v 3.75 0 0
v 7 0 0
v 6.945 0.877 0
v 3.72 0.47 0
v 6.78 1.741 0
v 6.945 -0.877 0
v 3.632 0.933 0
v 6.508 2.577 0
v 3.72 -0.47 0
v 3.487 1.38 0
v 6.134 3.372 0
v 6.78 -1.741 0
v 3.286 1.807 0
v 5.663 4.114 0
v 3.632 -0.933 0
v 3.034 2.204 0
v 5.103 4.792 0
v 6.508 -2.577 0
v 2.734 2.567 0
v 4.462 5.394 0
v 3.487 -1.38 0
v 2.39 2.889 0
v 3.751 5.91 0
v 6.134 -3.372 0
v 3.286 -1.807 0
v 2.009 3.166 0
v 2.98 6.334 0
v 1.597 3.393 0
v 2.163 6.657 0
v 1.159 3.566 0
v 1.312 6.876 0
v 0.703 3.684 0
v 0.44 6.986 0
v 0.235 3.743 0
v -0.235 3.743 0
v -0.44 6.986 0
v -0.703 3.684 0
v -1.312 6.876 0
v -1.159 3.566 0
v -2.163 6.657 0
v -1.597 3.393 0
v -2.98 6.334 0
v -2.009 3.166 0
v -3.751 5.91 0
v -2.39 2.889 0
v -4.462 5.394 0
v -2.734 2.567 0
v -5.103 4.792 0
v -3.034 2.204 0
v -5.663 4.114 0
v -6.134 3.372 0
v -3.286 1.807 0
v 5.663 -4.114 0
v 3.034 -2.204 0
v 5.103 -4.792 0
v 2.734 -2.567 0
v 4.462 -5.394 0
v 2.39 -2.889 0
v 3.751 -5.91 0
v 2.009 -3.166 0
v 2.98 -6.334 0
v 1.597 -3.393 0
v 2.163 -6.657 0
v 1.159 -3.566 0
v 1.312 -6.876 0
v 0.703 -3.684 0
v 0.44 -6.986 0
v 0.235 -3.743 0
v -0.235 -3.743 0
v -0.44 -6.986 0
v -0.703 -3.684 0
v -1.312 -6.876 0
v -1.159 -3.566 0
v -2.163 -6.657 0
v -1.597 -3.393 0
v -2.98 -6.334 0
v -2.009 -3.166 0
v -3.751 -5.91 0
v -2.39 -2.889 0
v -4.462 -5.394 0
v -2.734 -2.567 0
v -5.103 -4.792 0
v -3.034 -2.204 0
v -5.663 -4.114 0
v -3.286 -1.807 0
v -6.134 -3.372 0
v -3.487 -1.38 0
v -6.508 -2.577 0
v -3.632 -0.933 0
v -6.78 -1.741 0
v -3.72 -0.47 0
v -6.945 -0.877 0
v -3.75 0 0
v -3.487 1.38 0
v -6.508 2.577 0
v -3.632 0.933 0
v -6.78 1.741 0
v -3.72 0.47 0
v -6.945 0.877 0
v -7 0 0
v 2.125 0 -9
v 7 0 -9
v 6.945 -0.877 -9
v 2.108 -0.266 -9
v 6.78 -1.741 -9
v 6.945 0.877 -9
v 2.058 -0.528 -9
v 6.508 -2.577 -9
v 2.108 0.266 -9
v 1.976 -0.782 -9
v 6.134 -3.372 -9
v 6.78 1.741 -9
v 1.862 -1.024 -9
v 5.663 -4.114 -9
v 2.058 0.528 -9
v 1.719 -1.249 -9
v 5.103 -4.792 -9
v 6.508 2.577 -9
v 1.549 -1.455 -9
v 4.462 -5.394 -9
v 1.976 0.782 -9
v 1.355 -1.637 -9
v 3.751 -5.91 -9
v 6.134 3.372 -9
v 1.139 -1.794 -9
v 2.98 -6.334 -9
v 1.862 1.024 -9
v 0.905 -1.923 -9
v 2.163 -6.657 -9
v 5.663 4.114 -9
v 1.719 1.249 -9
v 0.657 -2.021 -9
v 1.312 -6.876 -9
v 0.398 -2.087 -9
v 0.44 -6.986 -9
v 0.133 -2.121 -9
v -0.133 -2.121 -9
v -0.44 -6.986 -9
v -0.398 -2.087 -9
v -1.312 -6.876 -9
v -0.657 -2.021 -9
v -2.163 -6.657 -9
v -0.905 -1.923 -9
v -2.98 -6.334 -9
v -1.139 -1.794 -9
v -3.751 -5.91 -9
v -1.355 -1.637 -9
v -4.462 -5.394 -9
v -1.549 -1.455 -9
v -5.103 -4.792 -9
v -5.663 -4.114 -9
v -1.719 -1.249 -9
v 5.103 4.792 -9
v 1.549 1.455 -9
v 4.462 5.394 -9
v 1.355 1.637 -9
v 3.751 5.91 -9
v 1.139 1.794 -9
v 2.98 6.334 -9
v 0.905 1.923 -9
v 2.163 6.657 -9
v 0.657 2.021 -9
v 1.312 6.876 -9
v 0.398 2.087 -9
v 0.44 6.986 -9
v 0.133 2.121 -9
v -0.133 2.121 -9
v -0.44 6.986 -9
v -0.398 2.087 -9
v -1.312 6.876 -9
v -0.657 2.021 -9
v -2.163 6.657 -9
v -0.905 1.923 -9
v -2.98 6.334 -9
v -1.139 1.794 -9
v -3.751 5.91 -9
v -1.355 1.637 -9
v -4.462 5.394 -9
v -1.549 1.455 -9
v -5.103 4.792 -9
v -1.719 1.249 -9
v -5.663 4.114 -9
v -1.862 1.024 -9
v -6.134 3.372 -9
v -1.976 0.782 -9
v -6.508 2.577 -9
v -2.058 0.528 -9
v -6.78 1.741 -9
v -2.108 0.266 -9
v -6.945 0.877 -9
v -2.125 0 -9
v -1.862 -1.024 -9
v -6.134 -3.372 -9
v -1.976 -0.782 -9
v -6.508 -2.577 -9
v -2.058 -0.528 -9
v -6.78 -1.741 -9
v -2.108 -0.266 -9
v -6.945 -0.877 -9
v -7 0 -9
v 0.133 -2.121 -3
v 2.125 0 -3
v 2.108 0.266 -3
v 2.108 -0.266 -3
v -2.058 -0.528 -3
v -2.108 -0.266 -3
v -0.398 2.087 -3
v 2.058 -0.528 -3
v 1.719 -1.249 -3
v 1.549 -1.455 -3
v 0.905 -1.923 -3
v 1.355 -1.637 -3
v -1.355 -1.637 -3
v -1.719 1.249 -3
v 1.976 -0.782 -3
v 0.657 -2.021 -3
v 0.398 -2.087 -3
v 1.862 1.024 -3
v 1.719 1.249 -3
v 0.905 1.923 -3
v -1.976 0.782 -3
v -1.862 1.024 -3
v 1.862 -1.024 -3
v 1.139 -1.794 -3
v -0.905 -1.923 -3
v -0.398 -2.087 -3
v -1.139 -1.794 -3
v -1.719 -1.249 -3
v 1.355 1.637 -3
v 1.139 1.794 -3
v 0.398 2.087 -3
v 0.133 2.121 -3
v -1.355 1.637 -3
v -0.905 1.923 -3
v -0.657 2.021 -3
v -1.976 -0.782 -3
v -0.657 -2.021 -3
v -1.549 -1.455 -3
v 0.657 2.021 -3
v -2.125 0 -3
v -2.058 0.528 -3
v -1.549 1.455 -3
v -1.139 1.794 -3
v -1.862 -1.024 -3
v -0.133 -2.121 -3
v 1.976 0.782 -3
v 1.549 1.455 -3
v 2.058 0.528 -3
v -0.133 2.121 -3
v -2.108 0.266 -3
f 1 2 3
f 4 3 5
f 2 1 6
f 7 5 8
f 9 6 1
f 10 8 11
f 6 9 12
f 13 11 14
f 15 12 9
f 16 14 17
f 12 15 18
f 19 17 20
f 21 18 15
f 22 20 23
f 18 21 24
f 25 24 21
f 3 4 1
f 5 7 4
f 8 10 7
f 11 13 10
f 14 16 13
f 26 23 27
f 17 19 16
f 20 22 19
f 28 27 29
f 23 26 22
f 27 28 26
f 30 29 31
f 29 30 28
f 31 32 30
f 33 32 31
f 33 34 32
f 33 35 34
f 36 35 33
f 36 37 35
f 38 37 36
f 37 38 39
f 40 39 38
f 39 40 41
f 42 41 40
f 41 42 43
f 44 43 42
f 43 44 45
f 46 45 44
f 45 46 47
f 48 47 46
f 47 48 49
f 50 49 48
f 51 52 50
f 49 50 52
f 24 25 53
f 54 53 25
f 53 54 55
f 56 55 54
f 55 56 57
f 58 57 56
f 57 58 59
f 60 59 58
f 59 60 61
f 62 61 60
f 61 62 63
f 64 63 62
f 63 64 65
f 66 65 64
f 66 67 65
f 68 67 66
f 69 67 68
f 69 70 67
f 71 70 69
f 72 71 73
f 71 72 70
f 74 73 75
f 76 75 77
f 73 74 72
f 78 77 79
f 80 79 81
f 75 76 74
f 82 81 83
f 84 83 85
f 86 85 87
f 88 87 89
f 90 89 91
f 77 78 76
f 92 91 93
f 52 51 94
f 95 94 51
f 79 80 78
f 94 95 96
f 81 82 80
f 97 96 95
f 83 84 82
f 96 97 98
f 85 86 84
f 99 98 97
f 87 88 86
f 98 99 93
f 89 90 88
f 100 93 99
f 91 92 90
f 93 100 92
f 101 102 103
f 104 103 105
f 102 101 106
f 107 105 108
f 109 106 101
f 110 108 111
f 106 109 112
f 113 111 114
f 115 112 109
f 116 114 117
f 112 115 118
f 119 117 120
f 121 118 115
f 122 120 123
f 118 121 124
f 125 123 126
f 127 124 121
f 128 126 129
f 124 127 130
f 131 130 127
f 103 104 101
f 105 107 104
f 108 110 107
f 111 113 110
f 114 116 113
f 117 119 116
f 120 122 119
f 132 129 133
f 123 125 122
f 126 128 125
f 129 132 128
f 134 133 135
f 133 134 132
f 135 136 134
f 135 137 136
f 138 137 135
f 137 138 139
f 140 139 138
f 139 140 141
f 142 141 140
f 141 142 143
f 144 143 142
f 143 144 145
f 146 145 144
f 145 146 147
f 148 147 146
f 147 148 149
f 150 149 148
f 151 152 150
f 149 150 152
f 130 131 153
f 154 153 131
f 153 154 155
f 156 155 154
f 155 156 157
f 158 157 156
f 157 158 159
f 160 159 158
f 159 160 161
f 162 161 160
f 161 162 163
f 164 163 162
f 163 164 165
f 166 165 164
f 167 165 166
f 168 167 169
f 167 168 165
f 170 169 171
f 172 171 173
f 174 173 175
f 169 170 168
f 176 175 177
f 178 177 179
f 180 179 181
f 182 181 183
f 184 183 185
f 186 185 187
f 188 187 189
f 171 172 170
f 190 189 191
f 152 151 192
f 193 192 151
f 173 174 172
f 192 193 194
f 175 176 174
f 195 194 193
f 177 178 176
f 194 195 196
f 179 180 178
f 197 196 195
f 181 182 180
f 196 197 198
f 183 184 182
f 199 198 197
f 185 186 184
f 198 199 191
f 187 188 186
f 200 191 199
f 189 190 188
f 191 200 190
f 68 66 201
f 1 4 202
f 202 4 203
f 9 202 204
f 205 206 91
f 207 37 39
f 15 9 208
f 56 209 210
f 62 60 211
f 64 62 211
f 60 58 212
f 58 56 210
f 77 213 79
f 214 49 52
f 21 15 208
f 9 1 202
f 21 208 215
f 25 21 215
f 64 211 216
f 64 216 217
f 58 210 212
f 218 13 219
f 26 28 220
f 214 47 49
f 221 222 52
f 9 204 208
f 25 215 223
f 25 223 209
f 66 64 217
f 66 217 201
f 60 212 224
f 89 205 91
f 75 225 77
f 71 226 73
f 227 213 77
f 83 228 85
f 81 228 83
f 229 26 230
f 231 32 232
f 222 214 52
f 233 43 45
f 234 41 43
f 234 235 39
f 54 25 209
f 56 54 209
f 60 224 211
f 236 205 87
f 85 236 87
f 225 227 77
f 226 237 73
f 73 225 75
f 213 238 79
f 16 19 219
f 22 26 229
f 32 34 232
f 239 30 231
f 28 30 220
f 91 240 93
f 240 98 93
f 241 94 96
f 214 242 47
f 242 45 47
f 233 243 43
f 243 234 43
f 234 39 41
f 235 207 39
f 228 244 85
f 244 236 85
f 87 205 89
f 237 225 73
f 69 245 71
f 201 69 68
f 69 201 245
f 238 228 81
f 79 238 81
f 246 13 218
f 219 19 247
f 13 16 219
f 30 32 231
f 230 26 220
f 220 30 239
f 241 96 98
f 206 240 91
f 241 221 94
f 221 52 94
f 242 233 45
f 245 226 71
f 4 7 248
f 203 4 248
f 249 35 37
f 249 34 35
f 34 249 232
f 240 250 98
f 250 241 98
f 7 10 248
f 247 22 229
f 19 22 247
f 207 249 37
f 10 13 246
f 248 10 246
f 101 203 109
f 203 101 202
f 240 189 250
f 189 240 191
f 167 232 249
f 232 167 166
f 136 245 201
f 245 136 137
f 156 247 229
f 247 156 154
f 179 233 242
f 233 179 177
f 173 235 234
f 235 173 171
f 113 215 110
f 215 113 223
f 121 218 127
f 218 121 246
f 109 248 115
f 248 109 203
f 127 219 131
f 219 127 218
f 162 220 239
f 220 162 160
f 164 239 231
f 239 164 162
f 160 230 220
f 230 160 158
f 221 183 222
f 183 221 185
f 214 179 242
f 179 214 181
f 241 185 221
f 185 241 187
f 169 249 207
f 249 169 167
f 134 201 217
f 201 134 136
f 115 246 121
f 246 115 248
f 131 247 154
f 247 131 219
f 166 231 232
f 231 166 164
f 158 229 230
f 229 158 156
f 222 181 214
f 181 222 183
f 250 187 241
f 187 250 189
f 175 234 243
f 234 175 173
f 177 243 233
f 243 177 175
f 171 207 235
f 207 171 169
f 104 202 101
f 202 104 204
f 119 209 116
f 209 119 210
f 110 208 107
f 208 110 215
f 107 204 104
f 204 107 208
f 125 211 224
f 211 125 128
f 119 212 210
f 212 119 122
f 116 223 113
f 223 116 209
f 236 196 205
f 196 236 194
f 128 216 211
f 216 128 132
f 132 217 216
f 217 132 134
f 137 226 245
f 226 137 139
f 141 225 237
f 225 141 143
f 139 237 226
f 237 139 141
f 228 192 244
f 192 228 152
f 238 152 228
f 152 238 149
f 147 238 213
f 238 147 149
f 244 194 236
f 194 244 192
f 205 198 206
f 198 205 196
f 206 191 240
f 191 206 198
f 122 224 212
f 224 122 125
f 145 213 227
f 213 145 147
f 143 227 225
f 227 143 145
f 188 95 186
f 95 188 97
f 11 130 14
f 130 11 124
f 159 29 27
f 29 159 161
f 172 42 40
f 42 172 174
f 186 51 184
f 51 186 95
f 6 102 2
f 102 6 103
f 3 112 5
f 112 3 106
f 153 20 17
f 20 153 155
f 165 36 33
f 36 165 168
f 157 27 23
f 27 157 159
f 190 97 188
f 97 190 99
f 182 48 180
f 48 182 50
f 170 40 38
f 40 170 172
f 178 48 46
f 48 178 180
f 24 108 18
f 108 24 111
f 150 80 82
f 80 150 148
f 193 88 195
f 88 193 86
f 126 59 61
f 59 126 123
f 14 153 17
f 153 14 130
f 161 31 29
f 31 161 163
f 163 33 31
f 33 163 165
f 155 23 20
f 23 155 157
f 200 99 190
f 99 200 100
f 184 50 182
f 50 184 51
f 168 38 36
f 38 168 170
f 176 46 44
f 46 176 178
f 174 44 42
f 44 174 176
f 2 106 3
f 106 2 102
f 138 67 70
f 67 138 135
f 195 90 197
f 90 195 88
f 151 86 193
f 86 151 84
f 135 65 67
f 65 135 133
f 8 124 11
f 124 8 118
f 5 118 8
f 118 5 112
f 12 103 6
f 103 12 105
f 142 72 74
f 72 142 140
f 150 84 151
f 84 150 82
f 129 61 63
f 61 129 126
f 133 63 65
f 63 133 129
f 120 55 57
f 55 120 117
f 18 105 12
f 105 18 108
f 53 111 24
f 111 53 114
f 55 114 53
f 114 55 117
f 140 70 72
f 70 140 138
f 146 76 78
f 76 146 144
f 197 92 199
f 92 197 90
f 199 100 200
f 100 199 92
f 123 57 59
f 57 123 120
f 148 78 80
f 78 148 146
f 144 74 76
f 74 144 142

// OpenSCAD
$fn = 50;


difference() {
	union() {
		translate(v = [0, 0, -9.0000000000]) {
			cylinder(h = 9, r = 7.0000000000);
		}
		cylinder(h = 0, r = 17.0000000000);
	}
	union() {
		translate(v = [0, 0, 0]) {
			rotate(a = [0, 0, 0]) {
				difference() {
					union() {
						#translate(v = [0, 0, -9.0000000000]) {
							cylinder(h = 9, r = 2.0000000000);
						}
						#translate(v = [0, 0, -3]) {
							cylinder(h = 3, r = 7.0000000000, r1 = 2.1250000000, r2 = 3.7500000000);
						}
						#translate(v = [0, 0, -9.0000000000]) {
							cylinder(h = 9, r = 2.1250000000);
						}
						#translate(v = [0, 0, -9.0000000000]) {
							cylinder(h = 9, r = 2.0000000000);
						}
					}
					union();
				}
			}
		}
	}
}
